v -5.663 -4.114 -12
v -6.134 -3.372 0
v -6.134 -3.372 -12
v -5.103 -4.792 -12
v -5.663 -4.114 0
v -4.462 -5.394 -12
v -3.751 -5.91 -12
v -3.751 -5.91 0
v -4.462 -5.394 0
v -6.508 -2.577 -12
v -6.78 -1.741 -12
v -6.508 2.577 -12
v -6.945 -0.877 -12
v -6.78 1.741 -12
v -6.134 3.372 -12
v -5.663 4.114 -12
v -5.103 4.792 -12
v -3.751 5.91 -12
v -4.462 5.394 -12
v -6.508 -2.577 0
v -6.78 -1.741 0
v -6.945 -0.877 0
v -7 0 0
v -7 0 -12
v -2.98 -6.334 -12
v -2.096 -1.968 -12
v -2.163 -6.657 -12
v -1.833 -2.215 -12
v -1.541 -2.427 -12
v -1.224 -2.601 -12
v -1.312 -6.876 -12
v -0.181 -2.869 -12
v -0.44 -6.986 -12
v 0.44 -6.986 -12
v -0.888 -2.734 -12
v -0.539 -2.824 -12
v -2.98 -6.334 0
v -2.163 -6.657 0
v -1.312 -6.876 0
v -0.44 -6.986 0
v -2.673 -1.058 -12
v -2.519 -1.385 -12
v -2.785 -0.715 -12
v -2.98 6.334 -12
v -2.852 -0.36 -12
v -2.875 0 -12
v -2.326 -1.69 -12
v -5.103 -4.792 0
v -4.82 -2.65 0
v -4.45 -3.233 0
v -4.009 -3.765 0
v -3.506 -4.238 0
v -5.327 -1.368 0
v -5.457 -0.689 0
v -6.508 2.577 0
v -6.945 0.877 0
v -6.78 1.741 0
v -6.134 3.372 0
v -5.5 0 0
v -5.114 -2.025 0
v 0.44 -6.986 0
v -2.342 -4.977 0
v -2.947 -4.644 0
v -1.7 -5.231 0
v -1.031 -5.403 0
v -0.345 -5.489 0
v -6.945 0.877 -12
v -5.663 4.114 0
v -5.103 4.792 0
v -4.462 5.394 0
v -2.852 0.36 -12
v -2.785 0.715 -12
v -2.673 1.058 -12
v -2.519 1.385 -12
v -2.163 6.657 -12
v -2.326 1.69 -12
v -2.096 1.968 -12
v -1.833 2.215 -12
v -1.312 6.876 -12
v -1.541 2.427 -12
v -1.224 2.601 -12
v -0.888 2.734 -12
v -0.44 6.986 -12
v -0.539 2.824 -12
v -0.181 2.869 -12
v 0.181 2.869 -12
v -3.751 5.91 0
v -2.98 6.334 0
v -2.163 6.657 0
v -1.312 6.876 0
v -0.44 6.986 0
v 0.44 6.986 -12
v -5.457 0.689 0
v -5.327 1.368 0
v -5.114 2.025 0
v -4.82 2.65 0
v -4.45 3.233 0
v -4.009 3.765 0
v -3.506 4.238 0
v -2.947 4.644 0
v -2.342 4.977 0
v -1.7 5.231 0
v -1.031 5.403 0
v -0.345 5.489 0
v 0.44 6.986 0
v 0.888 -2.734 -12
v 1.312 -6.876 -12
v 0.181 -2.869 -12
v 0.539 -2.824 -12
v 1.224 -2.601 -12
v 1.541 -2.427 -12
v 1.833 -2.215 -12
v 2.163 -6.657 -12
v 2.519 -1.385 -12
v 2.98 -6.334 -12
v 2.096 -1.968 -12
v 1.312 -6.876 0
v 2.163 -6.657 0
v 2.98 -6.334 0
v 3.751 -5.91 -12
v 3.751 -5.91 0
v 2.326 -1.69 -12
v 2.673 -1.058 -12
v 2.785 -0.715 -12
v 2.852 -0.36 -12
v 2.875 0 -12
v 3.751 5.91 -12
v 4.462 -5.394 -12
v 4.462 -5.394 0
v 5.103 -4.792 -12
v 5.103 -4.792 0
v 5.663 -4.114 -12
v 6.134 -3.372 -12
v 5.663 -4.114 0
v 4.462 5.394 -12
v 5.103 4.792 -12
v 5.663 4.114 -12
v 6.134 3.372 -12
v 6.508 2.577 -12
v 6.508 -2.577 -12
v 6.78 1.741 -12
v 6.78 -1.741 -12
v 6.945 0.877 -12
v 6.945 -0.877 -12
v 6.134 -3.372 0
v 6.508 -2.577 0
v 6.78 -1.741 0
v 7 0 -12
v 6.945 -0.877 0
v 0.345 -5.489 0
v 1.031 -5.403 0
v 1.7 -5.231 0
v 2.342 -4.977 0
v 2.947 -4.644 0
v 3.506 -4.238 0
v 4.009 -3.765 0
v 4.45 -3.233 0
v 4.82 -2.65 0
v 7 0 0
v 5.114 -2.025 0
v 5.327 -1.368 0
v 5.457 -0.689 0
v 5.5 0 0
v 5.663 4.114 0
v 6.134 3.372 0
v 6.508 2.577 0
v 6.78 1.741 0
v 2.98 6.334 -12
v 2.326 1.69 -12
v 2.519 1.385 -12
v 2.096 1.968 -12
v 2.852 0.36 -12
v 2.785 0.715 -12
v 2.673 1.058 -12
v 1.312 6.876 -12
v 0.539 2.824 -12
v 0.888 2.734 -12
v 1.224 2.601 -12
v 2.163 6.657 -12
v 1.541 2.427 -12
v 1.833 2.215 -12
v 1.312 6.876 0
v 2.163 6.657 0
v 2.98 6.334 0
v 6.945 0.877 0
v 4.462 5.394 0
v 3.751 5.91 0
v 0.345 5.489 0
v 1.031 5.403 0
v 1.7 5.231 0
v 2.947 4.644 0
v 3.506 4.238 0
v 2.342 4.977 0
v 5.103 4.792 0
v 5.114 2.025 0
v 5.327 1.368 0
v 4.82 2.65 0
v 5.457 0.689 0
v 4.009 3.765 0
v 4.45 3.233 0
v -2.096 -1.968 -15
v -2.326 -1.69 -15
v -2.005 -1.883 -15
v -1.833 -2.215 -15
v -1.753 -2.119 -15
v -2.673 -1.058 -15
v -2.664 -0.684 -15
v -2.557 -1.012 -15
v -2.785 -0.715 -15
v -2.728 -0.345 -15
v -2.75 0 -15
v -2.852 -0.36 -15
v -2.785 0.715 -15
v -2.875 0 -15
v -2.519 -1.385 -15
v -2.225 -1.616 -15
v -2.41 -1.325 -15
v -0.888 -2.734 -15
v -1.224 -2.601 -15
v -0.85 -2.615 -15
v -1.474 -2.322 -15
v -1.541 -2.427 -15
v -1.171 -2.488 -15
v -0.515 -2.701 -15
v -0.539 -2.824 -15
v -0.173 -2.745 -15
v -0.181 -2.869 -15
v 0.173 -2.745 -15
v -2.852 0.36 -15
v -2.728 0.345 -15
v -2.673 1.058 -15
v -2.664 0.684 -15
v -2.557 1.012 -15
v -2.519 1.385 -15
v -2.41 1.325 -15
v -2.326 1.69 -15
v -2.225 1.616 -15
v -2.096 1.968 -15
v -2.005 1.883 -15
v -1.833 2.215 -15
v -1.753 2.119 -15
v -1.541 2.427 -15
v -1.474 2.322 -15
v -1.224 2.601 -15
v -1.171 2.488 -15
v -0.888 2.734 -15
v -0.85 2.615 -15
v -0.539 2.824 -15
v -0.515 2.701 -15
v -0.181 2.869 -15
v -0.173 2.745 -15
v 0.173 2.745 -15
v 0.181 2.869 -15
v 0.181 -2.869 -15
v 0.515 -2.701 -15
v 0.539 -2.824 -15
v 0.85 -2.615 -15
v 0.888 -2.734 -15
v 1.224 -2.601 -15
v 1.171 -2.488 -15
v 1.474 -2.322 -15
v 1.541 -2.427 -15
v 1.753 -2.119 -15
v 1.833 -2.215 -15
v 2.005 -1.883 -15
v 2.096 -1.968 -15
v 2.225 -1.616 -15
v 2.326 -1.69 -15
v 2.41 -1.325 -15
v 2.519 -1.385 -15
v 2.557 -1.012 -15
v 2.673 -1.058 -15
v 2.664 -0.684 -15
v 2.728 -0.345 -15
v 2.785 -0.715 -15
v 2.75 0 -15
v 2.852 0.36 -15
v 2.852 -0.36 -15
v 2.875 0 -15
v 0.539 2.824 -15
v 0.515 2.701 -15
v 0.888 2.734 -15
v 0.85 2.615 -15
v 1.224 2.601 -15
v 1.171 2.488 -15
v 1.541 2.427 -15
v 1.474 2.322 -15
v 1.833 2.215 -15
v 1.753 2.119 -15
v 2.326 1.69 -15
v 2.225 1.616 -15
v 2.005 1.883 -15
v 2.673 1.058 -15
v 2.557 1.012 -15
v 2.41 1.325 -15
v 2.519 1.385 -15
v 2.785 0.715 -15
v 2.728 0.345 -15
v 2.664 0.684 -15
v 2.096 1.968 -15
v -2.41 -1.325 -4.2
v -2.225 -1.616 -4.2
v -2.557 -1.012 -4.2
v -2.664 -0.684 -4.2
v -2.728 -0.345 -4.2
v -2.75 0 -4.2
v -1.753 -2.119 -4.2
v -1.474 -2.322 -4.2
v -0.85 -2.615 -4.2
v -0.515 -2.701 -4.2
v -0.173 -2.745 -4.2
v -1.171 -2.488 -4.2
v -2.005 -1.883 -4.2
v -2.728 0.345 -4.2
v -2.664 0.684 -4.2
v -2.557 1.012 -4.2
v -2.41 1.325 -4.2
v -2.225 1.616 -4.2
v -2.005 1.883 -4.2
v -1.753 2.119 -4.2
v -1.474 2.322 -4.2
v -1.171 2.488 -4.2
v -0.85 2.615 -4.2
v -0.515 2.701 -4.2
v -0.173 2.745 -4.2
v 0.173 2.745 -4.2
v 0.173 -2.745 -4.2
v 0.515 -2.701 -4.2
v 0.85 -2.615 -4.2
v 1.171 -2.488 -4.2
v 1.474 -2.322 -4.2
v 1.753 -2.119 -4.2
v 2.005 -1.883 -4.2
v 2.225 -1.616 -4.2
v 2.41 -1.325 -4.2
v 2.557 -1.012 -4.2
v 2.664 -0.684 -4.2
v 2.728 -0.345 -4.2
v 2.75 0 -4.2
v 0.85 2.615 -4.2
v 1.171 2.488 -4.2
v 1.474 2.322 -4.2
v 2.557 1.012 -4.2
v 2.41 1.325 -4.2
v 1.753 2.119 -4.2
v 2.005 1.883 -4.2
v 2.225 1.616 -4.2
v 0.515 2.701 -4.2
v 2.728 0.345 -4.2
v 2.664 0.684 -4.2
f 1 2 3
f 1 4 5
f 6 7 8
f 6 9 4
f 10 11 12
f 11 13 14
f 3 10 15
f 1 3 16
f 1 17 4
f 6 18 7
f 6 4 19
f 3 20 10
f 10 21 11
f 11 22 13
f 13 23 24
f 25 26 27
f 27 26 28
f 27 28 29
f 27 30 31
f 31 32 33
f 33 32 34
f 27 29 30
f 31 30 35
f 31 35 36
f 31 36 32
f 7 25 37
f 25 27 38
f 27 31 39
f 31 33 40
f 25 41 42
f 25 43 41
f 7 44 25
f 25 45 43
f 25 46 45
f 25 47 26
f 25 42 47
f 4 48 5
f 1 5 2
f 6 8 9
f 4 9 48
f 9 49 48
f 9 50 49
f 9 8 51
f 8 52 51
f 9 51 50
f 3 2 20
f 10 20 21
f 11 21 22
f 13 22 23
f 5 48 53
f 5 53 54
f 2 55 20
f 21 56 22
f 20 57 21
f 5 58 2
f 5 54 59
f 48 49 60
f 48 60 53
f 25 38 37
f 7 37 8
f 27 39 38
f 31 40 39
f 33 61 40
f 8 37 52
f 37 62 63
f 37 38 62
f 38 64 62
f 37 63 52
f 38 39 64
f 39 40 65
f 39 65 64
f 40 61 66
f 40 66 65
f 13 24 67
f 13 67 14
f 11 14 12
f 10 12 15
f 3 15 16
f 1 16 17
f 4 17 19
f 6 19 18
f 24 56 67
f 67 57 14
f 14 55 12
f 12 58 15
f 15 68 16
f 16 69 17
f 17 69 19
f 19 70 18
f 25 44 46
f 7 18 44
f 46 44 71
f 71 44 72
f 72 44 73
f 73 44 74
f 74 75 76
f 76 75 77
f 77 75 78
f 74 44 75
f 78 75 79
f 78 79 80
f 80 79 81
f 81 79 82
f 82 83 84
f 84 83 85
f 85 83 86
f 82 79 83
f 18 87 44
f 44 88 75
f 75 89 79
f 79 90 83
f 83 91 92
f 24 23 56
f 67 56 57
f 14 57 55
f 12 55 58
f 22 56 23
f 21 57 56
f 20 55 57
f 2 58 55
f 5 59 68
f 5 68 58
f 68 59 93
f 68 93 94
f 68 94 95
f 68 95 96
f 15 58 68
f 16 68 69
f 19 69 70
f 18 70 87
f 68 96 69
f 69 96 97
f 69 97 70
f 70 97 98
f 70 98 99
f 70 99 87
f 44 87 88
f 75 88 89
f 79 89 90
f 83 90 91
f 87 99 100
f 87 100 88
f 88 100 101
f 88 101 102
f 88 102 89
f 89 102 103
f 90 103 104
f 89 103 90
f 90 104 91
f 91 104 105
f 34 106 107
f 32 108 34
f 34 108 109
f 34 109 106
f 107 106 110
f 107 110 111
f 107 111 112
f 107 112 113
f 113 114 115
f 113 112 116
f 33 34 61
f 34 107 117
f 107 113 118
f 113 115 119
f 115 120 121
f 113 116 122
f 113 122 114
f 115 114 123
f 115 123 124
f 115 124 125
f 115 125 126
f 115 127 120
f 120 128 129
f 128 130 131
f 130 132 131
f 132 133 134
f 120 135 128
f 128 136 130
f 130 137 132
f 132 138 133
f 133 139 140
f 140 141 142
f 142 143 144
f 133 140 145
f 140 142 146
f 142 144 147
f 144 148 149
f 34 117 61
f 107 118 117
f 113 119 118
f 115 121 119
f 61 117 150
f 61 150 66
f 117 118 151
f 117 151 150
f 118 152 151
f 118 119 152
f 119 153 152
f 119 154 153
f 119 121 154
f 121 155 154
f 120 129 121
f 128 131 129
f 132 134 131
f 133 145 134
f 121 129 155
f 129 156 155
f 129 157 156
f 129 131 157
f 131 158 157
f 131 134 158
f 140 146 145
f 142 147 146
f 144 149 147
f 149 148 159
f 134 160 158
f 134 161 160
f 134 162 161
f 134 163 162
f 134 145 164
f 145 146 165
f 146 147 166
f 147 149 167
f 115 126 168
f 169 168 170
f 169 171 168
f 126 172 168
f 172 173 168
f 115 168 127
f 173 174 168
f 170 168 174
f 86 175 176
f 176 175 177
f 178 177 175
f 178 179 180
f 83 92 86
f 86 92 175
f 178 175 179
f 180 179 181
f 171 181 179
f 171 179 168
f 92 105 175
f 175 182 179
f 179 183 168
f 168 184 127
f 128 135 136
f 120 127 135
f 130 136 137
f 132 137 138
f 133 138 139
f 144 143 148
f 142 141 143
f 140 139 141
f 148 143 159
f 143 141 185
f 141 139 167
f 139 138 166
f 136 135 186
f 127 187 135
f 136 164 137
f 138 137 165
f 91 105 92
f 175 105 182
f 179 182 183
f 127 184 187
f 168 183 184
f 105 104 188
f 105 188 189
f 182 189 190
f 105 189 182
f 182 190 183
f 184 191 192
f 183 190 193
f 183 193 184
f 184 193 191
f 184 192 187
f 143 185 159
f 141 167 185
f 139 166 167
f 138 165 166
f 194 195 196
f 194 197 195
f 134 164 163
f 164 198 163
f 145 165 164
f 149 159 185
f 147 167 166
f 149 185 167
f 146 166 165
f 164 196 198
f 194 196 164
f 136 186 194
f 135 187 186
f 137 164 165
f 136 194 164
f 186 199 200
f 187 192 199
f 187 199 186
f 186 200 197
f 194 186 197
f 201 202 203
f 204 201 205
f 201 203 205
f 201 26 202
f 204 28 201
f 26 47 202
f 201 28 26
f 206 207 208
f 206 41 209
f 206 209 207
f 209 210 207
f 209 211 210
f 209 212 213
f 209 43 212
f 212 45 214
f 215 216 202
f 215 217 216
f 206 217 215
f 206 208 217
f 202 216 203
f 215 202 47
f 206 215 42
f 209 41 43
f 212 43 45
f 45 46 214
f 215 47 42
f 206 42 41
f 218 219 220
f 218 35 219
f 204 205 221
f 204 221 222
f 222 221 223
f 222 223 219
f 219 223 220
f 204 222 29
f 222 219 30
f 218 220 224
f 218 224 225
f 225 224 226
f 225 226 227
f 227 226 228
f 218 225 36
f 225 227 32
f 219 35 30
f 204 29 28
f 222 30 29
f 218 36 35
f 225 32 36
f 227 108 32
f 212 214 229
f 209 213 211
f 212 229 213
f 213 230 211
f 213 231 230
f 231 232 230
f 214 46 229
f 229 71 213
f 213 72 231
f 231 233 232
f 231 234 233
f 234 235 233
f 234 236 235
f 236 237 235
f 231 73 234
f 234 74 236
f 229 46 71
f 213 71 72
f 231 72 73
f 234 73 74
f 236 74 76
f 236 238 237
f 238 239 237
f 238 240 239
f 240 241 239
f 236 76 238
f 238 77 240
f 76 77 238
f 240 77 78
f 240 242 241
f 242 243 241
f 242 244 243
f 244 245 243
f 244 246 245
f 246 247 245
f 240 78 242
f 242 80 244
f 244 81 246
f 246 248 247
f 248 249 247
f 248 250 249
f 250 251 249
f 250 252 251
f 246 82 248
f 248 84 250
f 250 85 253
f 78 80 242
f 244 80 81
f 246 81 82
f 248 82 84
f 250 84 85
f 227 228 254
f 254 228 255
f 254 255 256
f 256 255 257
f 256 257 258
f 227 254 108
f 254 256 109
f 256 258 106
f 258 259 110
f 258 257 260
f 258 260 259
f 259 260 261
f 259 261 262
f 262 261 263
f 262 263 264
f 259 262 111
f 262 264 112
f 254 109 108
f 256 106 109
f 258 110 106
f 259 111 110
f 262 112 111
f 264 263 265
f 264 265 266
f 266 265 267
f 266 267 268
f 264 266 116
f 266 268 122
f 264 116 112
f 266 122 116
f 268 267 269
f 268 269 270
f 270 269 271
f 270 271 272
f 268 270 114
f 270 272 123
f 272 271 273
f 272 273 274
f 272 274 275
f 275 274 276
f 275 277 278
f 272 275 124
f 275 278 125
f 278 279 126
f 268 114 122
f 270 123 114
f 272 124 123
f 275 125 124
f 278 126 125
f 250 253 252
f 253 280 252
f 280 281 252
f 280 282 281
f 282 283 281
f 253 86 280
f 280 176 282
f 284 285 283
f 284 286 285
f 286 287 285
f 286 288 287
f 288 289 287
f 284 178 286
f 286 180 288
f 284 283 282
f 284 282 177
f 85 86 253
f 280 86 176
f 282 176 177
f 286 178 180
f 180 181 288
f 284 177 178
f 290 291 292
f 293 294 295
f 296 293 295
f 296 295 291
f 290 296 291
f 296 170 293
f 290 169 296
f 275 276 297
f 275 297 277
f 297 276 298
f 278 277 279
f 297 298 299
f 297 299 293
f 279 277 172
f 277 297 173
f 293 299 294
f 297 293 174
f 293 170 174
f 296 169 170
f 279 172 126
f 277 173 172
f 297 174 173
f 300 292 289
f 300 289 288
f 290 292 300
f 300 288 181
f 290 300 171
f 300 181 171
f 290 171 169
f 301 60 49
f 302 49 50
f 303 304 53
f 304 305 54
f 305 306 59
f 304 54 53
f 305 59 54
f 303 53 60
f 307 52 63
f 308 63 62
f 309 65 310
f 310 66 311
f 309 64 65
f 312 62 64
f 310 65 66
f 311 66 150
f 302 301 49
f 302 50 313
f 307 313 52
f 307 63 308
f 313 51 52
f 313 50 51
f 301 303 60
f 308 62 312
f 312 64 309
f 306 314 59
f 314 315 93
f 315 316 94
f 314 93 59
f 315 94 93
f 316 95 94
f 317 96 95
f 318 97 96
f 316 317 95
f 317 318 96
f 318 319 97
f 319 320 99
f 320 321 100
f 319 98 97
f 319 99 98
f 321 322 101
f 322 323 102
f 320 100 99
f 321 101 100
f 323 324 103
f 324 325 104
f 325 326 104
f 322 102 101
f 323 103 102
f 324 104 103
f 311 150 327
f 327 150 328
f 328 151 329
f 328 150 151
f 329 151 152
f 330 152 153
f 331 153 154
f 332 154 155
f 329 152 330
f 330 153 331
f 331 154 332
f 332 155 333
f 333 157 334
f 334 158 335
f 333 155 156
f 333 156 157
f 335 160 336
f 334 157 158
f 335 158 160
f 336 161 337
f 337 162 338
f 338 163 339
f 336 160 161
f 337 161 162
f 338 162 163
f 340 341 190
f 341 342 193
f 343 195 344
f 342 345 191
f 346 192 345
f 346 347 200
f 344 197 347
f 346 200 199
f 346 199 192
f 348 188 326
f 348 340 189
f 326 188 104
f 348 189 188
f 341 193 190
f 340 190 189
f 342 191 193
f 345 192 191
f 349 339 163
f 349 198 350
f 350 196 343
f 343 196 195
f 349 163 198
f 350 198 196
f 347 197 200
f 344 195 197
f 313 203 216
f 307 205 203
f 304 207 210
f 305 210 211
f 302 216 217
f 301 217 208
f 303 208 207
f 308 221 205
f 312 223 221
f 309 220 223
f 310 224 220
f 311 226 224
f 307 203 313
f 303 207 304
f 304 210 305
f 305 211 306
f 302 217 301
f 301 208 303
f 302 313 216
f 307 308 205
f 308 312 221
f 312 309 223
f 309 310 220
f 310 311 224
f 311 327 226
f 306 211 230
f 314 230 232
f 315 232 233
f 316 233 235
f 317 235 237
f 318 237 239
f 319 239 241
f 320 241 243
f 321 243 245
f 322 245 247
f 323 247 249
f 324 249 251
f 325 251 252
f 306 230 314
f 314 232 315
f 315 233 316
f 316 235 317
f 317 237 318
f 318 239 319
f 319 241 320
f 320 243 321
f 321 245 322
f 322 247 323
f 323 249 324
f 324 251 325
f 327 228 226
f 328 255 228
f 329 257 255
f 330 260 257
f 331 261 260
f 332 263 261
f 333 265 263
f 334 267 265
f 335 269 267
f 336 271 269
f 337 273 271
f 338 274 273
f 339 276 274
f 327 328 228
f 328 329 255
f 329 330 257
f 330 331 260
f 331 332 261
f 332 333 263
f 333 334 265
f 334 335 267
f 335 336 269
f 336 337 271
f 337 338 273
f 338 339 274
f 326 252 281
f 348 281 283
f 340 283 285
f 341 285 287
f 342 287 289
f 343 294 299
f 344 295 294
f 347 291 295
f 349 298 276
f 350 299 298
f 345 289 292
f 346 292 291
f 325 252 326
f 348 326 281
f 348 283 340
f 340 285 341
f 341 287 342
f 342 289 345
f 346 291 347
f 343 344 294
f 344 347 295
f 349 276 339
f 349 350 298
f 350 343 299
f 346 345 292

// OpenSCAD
$fn = 50;

difference() {
	union() {
		translate(v = [0, 0, -12.0]) {
			cylinder(h = 12, r = 7.0);
		}
		#translate(v = [0, 0, -15.0]) {
			cylinder(h = 15, r = 2.875);
		}
	}
	union() {
		translate(v = [0, 0, 0]) {
			rotate(a = [0, 0, 0]) {
				difference() {
					union() {
						translate(v = [0, 0, -15.0]) {
							cylinder(h = 15, r = 2.25);
						}
						translate(v = [0, 0, -4.2]) {
							cylinder(h = 4.2, r1 = 2.75, r2 = 5.5);
						}
						translate(v = [0, 0, -15.0]) {
							cylinder(h = 15, r = 2.75);
						}
						translate(v = [0, 0, -15.0]) {
							cylinder(h = 15, r = 2.25);
						}
					}
					union();
				}
			}
		}
	}
}
